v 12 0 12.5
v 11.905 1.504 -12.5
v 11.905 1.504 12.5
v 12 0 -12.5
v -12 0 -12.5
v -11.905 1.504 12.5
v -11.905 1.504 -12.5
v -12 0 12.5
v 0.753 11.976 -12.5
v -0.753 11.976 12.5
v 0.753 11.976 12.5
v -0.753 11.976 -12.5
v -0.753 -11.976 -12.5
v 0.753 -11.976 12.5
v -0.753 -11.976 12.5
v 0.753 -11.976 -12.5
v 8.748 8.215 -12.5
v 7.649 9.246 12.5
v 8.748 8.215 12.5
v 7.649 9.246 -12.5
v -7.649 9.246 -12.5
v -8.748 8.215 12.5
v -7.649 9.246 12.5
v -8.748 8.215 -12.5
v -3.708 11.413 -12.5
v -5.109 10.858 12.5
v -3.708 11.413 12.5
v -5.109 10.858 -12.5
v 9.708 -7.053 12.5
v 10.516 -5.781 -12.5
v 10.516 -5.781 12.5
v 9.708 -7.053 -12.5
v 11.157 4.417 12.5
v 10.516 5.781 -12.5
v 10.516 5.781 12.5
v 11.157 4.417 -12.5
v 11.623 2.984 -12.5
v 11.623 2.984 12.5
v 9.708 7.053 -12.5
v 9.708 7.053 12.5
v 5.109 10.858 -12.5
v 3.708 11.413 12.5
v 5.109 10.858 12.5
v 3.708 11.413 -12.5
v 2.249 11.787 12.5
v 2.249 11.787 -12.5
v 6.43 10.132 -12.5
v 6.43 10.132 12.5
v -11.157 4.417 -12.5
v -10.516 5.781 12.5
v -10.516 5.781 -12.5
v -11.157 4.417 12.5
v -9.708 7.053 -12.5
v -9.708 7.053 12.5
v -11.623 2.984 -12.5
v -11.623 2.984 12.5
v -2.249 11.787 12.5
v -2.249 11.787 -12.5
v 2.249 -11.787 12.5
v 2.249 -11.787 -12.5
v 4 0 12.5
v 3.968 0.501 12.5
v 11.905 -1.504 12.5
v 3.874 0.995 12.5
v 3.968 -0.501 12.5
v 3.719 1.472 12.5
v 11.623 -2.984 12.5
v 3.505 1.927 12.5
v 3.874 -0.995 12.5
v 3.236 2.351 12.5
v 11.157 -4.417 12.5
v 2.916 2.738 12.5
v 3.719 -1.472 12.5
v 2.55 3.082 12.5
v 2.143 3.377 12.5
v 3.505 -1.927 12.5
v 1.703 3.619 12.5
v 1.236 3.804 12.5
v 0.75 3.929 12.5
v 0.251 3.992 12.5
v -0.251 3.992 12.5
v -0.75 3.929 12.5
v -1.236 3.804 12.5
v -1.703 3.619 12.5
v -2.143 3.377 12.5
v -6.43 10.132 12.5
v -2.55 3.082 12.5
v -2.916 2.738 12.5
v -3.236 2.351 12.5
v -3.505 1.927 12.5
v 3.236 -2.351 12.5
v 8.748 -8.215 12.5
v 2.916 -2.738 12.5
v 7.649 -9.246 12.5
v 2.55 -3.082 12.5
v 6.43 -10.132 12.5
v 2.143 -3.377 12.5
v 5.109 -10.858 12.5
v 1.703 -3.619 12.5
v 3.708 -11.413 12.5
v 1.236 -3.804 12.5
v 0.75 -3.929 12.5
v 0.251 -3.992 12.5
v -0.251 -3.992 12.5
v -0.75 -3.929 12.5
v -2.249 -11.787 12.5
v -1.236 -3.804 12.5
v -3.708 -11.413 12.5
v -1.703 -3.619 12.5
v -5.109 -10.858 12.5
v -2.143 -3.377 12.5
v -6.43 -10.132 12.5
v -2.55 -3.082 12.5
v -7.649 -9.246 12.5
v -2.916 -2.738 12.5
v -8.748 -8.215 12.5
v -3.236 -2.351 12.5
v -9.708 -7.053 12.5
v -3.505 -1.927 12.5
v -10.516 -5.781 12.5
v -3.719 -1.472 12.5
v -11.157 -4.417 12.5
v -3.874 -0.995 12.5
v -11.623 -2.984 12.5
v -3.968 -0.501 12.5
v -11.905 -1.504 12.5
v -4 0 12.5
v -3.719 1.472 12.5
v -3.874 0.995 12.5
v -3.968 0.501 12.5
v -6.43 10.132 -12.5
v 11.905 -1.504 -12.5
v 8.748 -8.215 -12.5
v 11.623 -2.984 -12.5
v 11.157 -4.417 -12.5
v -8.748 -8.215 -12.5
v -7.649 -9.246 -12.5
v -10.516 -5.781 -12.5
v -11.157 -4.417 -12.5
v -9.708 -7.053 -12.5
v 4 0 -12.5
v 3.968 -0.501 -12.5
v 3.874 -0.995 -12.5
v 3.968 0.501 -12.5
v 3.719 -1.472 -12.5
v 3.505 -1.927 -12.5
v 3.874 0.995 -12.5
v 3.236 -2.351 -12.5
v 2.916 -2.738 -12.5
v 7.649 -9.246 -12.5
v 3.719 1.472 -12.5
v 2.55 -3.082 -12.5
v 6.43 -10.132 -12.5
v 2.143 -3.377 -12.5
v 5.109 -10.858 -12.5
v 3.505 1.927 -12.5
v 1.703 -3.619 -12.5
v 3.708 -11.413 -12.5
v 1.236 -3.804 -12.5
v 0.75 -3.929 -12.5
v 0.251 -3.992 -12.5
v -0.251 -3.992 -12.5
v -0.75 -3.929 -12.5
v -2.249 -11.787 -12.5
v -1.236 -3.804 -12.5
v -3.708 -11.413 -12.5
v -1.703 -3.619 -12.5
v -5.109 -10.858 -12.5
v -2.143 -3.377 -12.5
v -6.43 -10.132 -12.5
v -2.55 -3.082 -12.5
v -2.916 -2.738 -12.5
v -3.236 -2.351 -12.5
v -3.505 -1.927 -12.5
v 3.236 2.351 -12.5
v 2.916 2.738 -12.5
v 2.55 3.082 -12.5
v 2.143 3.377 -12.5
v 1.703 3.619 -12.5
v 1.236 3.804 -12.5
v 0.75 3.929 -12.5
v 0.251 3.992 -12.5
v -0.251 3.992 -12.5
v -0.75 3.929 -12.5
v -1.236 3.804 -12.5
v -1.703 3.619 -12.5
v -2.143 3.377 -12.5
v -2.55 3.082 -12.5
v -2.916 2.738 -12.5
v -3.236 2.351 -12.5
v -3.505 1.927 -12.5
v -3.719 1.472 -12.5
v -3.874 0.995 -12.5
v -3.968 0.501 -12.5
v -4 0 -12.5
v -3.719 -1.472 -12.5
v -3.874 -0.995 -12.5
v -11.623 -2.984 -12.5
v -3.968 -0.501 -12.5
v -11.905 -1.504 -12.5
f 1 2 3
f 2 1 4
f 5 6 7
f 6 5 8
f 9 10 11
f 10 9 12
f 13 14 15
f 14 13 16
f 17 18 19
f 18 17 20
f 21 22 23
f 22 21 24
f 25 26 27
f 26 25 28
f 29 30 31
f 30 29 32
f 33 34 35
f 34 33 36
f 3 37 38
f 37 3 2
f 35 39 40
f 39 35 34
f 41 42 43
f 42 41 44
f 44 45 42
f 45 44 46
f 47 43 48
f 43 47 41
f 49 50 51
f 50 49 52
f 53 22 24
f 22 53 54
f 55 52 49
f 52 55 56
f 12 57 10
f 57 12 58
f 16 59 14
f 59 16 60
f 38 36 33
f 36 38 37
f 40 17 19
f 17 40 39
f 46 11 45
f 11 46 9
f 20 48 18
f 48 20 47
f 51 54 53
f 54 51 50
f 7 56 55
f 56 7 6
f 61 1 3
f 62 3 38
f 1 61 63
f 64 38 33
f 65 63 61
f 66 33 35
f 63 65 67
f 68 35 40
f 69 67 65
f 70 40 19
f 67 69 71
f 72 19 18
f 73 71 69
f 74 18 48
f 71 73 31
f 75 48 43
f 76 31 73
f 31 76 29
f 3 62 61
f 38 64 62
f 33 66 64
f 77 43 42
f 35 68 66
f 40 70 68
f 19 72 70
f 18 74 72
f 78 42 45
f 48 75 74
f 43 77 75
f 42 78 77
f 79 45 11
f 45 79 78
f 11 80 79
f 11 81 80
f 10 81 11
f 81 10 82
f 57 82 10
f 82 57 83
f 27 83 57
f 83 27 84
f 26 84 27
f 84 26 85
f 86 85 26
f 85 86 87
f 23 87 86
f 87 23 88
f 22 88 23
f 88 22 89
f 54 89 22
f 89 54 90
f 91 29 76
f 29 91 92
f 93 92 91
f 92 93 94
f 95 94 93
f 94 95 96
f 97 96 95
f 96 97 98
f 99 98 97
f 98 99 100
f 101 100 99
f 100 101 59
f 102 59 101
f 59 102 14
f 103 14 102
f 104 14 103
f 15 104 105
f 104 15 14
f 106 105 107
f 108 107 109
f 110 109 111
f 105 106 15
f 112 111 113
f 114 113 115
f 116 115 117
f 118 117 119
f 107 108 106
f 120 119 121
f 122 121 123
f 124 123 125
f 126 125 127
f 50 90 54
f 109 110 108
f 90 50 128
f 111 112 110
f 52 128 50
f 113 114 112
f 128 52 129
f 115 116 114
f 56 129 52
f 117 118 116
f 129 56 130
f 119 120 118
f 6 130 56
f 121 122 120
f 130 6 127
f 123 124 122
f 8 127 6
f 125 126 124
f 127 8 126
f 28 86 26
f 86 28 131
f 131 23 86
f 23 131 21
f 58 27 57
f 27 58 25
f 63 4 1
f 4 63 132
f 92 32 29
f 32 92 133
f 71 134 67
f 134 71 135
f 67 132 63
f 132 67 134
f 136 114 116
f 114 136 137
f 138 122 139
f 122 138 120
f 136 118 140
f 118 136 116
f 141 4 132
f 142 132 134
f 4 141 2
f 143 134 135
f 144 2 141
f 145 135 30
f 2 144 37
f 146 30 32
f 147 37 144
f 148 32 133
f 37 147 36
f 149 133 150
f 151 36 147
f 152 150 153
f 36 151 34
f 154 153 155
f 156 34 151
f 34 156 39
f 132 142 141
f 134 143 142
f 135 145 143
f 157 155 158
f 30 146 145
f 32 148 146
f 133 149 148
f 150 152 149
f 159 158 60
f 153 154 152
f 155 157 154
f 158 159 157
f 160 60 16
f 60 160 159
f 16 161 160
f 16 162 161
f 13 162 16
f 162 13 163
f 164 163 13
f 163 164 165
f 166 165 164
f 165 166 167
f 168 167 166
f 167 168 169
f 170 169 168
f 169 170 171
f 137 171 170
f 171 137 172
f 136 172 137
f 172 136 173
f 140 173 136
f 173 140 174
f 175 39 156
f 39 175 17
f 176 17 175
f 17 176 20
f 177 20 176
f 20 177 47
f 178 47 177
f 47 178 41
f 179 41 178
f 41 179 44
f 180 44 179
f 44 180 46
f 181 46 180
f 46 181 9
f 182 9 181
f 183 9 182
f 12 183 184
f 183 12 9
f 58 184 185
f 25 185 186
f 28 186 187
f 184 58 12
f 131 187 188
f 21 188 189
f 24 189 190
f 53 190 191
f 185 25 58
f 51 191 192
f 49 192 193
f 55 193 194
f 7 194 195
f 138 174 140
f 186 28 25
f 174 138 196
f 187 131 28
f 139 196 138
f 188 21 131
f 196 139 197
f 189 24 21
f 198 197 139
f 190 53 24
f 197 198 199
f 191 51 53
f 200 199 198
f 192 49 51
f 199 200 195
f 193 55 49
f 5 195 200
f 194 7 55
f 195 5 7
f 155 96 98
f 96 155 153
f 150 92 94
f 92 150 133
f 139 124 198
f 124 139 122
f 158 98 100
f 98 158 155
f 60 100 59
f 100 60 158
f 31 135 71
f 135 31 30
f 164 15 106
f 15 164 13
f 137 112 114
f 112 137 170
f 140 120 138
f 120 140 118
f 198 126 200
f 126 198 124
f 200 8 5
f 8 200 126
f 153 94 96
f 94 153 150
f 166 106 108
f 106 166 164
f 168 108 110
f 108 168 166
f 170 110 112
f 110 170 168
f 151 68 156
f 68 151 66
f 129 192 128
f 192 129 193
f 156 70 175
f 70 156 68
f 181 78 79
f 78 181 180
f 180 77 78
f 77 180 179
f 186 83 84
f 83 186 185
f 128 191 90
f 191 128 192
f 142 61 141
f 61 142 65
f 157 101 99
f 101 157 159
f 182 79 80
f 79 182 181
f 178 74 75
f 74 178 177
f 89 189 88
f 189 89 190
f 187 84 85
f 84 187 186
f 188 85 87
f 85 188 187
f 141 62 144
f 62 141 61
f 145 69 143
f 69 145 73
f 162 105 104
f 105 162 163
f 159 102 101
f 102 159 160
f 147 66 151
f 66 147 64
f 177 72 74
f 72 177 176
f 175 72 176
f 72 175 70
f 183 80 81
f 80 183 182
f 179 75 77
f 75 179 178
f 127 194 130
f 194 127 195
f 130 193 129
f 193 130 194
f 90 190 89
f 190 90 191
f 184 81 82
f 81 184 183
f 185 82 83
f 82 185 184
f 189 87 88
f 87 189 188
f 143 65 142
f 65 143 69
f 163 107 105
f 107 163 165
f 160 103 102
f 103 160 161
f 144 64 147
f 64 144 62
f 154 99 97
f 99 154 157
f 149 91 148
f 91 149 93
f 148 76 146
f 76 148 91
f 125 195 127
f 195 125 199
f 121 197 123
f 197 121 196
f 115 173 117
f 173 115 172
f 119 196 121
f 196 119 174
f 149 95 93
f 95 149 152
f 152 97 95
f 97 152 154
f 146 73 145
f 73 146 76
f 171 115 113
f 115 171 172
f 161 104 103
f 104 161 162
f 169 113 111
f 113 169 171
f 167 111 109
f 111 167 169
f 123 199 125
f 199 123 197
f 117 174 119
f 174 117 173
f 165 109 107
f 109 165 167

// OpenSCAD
$fn = 50;


difference() {
	union() {
		translate(v = [0, 0, -12.5000000000]) {
			cylinder(h = 25, r = 12.0000000000);
		}
	}
	union() {
		translate(v = [0, 0, -100.0000000000]) {
			cylinder(h = 200, r = 4);
		}
	}
}
